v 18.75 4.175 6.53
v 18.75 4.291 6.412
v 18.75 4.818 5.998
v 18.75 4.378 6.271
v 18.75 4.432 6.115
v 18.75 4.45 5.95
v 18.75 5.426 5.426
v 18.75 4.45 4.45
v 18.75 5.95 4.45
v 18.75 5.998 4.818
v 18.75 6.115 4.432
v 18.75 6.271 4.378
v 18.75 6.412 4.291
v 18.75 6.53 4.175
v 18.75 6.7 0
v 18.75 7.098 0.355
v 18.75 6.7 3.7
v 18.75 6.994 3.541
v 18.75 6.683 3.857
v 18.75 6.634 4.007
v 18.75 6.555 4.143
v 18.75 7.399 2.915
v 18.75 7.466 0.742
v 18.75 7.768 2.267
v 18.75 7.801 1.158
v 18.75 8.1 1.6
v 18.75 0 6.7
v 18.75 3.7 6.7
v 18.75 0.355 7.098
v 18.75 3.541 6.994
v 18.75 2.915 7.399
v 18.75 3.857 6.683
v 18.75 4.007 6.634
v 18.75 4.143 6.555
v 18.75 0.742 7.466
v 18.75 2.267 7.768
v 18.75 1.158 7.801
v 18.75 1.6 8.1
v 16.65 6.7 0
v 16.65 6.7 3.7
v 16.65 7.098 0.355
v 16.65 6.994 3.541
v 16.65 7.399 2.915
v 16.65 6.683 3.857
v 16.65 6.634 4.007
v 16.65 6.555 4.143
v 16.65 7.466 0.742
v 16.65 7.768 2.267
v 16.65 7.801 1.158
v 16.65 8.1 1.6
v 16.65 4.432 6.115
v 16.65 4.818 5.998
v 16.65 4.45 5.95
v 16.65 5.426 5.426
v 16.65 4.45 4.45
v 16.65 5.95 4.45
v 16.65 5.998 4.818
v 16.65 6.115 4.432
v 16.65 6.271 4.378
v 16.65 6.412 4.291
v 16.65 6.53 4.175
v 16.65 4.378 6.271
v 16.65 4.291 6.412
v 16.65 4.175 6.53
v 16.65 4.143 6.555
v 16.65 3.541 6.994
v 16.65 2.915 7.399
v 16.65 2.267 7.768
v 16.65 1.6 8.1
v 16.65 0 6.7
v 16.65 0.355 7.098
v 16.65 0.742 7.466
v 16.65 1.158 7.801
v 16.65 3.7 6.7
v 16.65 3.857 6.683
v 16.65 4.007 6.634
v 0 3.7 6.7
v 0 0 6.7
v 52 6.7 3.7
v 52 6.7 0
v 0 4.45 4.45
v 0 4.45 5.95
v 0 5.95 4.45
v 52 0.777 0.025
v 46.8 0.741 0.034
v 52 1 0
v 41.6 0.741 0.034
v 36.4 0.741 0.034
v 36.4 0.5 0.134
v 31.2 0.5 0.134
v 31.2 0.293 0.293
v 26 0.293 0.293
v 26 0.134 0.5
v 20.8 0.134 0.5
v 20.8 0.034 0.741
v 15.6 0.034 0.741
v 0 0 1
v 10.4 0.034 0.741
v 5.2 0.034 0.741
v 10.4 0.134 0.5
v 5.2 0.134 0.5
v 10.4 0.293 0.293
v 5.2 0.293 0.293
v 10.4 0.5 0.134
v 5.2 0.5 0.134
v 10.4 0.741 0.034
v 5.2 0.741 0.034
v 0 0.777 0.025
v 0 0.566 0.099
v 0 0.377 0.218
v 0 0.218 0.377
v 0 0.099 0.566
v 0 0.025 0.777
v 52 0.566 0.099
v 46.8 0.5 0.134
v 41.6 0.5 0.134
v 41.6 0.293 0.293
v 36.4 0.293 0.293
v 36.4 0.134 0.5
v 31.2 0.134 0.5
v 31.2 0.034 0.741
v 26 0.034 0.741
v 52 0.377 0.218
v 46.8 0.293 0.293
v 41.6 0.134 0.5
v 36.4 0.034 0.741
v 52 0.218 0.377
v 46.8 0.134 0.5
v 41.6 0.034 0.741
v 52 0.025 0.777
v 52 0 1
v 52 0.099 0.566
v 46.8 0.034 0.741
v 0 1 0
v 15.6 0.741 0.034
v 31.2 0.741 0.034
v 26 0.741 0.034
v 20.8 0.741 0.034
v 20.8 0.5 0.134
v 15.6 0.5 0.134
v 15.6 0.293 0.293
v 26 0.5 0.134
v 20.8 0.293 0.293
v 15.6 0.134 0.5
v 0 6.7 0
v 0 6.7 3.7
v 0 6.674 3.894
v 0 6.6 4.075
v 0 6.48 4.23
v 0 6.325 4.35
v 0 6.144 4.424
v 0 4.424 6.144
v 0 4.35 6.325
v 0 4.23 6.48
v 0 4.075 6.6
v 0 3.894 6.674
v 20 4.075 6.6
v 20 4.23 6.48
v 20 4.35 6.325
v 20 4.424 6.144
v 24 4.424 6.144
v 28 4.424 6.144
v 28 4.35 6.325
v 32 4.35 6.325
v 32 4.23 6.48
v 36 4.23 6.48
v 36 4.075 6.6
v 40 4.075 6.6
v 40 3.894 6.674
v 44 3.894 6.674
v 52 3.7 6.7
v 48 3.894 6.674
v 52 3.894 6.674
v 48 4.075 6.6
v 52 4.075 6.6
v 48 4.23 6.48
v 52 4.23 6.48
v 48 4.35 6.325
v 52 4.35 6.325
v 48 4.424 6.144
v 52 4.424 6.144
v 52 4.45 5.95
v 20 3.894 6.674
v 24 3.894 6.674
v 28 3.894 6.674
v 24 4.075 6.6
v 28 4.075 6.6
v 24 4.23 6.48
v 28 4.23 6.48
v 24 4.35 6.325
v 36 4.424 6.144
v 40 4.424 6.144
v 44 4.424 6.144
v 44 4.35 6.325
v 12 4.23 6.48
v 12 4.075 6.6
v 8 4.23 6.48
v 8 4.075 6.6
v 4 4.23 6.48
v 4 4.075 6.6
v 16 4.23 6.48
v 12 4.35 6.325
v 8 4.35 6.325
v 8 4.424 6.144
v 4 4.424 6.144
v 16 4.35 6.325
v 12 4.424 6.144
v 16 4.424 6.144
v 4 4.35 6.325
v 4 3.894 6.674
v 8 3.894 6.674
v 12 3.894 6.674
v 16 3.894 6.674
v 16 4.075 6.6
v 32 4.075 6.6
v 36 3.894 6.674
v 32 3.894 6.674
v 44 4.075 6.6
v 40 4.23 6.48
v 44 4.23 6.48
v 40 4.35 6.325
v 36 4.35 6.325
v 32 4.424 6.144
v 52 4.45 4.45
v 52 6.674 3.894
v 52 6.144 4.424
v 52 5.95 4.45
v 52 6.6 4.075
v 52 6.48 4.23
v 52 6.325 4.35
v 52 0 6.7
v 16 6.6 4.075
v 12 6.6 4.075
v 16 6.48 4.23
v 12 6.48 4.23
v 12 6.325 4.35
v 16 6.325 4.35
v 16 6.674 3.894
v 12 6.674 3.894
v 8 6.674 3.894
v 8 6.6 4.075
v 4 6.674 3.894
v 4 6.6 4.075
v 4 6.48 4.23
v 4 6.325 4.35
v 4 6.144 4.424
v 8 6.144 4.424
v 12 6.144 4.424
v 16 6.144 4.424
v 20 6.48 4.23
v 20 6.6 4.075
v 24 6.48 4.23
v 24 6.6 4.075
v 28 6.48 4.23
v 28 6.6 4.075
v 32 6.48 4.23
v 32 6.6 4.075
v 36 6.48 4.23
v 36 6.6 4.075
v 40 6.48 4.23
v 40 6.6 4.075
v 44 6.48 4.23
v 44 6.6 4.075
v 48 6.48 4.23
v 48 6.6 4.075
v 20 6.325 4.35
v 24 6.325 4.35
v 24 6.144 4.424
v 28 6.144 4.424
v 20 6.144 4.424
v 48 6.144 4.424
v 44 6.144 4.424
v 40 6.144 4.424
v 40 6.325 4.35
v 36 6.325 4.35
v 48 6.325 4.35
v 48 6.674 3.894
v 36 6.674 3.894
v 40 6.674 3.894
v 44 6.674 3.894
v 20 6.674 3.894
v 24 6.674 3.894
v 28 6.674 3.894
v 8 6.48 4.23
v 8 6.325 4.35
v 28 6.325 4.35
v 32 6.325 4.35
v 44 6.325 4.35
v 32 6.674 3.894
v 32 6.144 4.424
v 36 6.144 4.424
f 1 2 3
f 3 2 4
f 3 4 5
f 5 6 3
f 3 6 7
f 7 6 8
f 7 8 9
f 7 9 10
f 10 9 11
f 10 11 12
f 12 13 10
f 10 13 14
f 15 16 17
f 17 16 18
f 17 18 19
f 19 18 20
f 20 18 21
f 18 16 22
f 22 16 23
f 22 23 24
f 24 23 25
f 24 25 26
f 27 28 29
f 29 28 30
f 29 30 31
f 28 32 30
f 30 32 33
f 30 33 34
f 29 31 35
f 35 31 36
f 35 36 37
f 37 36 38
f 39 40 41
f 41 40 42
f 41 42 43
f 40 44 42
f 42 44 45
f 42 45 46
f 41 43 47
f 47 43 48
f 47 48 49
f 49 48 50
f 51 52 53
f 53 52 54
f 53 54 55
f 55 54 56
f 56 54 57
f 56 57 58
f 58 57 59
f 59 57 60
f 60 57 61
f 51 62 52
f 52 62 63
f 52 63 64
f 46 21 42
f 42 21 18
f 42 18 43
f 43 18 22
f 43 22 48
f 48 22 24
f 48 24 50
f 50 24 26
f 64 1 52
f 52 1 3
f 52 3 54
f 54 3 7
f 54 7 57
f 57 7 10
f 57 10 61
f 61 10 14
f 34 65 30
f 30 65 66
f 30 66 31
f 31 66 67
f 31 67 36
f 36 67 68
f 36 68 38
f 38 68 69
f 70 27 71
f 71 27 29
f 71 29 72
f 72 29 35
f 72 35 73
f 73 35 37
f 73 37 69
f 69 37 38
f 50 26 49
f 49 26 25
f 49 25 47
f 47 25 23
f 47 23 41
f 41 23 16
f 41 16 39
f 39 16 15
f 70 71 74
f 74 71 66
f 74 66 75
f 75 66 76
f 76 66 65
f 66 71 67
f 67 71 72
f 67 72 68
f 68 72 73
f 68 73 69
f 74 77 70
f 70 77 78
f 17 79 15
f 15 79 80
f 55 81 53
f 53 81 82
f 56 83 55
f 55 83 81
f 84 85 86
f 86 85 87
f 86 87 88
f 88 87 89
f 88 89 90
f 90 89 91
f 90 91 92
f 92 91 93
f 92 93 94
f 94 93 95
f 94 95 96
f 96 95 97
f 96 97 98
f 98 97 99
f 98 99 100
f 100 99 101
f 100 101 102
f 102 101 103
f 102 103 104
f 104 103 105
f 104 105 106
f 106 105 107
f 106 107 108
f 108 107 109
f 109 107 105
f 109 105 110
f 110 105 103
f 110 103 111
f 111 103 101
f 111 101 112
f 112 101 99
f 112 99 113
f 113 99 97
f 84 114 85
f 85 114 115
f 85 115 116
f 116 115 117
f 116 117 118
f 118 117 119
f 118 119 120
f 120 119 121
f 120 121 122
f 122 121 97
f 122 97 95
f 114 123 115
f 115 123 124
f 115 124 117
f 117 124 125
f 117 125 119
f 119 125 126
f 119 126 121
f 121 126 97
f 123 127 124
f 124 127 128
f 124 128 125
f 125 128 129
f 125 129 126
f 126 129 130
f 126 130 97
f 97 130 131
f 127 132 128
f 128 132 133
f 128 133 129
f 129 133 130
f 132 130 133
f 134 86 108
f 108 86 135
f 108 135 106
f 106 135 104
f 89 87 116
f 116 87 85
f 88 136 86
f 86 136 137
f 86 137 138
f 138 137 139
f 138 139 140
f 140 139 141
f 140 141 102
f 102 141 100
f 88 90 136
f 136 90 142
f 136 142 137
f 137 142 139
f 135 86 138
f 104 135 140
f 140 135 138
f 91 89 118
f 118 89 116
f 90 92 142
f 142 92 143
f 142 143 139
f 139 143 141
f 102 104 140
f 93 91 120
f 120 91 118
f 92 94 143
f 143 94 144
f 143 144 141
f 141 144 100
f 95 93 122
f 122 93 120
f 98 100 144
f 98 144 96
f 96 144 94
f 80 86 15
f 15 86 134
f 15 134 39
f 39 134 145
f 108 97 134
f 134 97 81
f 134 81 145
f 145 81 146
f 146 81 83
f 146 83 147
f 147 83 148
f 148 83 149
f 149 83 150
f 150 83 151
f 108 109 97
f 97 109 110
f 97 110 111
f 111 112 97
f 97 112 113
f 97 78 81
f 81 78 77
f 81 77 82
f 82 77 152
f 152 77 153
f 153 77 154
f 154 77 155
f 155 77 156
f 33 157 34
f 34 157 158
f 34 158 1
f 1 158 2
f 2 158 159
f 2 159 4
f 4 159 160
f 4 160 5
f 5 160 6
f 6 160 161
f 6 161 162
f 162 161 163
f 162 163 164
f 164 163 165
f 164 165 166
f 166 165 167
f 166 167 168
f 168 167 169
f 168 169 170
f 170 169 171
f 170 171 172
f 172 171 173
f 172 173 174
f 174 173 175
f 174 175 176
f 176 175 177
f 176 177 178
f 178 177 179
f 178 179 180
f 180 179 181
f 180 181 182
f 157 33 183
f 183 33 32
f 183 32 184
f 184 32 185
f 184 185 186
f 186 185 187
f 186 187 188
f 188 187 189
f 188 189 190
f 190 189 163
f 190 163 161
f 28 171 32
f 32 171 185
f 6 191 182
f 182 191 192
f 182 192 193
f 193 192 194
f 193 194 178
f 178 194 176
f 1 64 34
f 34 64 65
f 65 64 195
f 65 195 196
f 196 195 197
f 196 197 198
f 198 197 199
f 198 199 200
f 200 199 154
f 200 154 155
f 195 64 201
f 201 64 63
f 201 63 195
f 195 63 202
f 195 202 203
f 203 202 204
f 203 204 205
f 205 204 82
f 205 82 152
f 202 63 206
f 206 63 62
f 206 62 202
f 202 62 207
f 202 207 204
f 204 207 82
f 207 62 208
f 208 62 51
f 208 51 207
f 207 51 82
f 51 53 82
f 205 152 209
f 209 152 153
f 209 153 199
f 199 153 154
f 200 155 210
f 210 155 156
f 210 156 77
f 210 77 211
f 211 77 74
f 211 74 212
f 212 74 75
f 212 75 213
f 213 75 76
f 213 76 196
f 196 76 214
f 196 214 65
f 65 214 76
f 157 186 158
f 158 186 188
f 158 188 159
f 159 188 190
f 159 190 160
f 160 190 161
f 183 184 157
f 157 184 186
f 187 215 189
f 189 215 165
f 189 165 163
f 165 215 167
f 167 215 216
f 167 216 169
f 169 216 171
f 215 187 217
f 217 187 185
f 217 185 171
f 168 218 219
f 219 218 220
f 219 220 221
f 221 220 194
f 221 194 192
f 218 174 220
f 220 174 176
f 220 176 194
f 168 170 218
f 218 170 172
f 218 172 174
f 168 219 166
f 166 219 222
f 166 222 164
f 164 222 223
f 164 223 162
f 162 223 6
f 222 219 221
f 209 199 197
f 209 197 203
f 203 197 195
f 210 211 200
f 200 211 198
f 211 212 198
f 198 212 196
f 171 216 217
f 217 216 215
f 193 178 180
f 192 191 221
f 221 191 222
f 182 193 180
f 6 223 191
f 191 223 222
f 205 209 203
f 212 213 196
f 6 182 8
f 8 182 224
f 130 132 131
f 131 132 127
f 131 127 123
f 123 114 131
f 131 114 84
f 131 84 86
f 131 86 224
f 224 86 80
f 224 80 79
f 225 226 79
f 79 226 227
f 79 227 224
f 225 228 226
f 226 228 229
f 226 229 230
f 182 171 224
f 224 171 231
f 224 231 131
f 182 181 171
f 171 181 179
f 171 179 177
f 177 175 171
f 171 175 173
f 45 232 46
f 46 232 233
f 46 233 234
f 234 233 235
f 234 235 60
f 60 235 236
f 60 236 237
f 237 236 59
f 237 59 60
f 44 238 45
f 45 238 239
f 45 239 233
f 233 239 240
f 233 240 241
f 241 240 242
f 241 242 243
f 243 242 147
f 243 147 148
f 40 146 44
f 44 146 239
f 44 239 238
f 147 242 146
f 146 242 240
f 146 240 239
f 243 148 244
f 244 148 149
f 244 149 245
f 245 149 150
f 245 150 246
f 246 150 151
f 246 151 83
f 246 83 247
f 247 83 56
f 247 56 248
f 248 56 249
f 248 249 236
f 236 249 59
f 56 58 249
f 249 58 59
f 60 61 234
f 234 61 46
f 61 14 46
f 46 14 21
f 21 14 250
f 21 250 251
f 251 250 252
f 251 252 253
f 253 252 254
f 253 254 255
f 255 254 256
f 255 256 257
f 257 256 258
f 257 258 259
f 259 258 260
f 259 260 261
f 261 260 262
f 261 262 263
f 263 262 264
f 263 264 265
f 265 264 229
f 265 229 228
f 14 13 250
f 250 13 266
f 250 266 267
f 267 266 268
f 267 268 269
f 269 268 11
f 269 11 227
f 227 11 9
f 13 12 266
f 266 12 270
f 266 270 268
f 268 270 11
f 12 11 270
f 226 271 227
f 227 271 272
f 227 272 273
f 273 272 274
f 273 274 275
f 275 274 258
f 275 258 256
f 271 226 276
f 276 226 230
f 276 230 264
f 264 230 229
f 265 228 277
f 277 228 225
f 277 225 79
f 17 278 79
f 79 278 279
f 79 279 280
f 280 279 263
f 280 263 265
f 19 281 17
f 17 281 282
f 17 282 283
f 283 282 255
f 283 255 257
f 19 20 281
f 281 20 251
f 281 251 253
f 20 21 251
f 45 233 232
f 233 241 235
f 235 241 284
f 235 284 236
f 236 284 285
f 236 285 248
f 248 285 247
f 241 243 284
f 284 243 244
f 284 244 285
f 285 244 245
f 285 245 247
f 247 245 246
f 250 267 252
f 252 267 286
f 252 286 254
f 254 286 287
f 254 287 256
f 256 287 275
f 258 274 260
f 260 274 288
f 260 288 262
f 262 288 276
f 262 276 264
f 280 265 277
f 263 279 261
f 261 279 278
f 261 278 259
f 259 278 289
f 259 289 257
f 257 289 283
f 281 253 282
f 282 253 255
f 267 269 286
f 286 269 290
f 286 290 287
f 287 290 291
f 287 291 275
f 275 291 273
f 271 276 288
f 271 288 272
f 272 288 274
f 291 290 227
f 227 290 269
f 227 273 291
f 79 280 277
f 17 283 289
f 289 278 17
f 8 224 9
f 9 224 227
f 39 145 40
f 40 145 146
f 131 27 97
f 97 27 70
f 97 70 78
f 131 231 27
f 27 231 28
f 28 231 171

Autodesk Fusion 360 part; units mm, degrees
sketch "Sketch1" plane through (0, 0, 0) normal (0, 0, 1) x (1, 0, 0)
  line L0 (0, 0) -> (52, 0)
  line L1 (52, 0) -> (52, 6.7)
  line L2 (52, 6.7) -> (0, 6.7)
  line L3 (0, 6.7) -> (0, 0)
  dimension "d1" = 52
  dimension "d2" = 6.7
extrude "Extrude1" add sketch "Sketch1" along normal blind 6.7
sketch "Sketch2" plane through (0, 0, 6.7) normal (0, 0, 1) x (-1, 0, 0)
  line L0 (0, -6.7) -> (0, 0)
  line L1 (0, 0) -> (-52, 0)
  line L2 (-52, 0) -> (-52, -6.7)
  line L3 (-52, -6.7) -> (0, -6.7)
  line L4 (0, 0) -> (-52, 0)
  line L5 (-52, 0) -> (-52, -4.45)
  line L6 (-52, -4.45) -> (0, -4.45)
  line L7 (0, -4.45) -> (0, 0)
  dimension "d5" = 4.45
extrude "Extrude2" cut sketch "Sketch2" against normal blind 2.25 contours L0 L2 L3 L6
fillet "Fillet2" radius 0.75 2 edges at (26, 6.7, 4.45) (26, 4.45, 6.7)
fillet "Fillet3" radius 1 1 edges at (26, 0, 0)
ref_plane "WorkPlane2" through (18.75, 0, 0) normal (1, 0, 0) x (0, 1, 0)
sketch "Sketch8" plane through (18.75, 0, 0) normal (1, 0, 0) x (0, 1, 0)
  line L0 (4.45, 4.45) -> (6.7, 2.2) construction
  line L1 (4.45, 4.45) -> (2.1892, 6.7108) construction
  line L2 (0, 6.7) -> (1.6, 6.7) construction
  line L3 (6.7, 0) -> (6.7, 1.6) construction
  line L4 (6.7, 1.6) -> (8.1, 1.6) construction
  line L5 (1.6, 6.7) -> (1.6, 8.1) construction
  line L6 (4.45, 4.45) -> (7, 7) construction
  line L7 (5.575, 3.325) -> (8.1813, 5.9313) construction
  line L8 (3.3196, 5.5804) -> (5.5098, 7.7707) construction
  arc A0 (6.7, 0) -> (8.1, 1.6) centre (2.6, 5) ccw
  arc A1 (1.6, 8.1) -> (0, 6.7) centre (5, 2.6) ccw
  line L9 (0, 6.7) -> (6.7, 0)
  arc A2 (8.1, 1.6) -> (1.6, 8.1) centre (-4.0249, -4.0249) ccw
  dimension "d18" = 1.6
  dimension "d19" = 1.6
  dimension "d20" = 1.4
  dimension "d21" = 1.4
extrude "Extrude3" add sketch "Sketch8" against normal blind 2.1
